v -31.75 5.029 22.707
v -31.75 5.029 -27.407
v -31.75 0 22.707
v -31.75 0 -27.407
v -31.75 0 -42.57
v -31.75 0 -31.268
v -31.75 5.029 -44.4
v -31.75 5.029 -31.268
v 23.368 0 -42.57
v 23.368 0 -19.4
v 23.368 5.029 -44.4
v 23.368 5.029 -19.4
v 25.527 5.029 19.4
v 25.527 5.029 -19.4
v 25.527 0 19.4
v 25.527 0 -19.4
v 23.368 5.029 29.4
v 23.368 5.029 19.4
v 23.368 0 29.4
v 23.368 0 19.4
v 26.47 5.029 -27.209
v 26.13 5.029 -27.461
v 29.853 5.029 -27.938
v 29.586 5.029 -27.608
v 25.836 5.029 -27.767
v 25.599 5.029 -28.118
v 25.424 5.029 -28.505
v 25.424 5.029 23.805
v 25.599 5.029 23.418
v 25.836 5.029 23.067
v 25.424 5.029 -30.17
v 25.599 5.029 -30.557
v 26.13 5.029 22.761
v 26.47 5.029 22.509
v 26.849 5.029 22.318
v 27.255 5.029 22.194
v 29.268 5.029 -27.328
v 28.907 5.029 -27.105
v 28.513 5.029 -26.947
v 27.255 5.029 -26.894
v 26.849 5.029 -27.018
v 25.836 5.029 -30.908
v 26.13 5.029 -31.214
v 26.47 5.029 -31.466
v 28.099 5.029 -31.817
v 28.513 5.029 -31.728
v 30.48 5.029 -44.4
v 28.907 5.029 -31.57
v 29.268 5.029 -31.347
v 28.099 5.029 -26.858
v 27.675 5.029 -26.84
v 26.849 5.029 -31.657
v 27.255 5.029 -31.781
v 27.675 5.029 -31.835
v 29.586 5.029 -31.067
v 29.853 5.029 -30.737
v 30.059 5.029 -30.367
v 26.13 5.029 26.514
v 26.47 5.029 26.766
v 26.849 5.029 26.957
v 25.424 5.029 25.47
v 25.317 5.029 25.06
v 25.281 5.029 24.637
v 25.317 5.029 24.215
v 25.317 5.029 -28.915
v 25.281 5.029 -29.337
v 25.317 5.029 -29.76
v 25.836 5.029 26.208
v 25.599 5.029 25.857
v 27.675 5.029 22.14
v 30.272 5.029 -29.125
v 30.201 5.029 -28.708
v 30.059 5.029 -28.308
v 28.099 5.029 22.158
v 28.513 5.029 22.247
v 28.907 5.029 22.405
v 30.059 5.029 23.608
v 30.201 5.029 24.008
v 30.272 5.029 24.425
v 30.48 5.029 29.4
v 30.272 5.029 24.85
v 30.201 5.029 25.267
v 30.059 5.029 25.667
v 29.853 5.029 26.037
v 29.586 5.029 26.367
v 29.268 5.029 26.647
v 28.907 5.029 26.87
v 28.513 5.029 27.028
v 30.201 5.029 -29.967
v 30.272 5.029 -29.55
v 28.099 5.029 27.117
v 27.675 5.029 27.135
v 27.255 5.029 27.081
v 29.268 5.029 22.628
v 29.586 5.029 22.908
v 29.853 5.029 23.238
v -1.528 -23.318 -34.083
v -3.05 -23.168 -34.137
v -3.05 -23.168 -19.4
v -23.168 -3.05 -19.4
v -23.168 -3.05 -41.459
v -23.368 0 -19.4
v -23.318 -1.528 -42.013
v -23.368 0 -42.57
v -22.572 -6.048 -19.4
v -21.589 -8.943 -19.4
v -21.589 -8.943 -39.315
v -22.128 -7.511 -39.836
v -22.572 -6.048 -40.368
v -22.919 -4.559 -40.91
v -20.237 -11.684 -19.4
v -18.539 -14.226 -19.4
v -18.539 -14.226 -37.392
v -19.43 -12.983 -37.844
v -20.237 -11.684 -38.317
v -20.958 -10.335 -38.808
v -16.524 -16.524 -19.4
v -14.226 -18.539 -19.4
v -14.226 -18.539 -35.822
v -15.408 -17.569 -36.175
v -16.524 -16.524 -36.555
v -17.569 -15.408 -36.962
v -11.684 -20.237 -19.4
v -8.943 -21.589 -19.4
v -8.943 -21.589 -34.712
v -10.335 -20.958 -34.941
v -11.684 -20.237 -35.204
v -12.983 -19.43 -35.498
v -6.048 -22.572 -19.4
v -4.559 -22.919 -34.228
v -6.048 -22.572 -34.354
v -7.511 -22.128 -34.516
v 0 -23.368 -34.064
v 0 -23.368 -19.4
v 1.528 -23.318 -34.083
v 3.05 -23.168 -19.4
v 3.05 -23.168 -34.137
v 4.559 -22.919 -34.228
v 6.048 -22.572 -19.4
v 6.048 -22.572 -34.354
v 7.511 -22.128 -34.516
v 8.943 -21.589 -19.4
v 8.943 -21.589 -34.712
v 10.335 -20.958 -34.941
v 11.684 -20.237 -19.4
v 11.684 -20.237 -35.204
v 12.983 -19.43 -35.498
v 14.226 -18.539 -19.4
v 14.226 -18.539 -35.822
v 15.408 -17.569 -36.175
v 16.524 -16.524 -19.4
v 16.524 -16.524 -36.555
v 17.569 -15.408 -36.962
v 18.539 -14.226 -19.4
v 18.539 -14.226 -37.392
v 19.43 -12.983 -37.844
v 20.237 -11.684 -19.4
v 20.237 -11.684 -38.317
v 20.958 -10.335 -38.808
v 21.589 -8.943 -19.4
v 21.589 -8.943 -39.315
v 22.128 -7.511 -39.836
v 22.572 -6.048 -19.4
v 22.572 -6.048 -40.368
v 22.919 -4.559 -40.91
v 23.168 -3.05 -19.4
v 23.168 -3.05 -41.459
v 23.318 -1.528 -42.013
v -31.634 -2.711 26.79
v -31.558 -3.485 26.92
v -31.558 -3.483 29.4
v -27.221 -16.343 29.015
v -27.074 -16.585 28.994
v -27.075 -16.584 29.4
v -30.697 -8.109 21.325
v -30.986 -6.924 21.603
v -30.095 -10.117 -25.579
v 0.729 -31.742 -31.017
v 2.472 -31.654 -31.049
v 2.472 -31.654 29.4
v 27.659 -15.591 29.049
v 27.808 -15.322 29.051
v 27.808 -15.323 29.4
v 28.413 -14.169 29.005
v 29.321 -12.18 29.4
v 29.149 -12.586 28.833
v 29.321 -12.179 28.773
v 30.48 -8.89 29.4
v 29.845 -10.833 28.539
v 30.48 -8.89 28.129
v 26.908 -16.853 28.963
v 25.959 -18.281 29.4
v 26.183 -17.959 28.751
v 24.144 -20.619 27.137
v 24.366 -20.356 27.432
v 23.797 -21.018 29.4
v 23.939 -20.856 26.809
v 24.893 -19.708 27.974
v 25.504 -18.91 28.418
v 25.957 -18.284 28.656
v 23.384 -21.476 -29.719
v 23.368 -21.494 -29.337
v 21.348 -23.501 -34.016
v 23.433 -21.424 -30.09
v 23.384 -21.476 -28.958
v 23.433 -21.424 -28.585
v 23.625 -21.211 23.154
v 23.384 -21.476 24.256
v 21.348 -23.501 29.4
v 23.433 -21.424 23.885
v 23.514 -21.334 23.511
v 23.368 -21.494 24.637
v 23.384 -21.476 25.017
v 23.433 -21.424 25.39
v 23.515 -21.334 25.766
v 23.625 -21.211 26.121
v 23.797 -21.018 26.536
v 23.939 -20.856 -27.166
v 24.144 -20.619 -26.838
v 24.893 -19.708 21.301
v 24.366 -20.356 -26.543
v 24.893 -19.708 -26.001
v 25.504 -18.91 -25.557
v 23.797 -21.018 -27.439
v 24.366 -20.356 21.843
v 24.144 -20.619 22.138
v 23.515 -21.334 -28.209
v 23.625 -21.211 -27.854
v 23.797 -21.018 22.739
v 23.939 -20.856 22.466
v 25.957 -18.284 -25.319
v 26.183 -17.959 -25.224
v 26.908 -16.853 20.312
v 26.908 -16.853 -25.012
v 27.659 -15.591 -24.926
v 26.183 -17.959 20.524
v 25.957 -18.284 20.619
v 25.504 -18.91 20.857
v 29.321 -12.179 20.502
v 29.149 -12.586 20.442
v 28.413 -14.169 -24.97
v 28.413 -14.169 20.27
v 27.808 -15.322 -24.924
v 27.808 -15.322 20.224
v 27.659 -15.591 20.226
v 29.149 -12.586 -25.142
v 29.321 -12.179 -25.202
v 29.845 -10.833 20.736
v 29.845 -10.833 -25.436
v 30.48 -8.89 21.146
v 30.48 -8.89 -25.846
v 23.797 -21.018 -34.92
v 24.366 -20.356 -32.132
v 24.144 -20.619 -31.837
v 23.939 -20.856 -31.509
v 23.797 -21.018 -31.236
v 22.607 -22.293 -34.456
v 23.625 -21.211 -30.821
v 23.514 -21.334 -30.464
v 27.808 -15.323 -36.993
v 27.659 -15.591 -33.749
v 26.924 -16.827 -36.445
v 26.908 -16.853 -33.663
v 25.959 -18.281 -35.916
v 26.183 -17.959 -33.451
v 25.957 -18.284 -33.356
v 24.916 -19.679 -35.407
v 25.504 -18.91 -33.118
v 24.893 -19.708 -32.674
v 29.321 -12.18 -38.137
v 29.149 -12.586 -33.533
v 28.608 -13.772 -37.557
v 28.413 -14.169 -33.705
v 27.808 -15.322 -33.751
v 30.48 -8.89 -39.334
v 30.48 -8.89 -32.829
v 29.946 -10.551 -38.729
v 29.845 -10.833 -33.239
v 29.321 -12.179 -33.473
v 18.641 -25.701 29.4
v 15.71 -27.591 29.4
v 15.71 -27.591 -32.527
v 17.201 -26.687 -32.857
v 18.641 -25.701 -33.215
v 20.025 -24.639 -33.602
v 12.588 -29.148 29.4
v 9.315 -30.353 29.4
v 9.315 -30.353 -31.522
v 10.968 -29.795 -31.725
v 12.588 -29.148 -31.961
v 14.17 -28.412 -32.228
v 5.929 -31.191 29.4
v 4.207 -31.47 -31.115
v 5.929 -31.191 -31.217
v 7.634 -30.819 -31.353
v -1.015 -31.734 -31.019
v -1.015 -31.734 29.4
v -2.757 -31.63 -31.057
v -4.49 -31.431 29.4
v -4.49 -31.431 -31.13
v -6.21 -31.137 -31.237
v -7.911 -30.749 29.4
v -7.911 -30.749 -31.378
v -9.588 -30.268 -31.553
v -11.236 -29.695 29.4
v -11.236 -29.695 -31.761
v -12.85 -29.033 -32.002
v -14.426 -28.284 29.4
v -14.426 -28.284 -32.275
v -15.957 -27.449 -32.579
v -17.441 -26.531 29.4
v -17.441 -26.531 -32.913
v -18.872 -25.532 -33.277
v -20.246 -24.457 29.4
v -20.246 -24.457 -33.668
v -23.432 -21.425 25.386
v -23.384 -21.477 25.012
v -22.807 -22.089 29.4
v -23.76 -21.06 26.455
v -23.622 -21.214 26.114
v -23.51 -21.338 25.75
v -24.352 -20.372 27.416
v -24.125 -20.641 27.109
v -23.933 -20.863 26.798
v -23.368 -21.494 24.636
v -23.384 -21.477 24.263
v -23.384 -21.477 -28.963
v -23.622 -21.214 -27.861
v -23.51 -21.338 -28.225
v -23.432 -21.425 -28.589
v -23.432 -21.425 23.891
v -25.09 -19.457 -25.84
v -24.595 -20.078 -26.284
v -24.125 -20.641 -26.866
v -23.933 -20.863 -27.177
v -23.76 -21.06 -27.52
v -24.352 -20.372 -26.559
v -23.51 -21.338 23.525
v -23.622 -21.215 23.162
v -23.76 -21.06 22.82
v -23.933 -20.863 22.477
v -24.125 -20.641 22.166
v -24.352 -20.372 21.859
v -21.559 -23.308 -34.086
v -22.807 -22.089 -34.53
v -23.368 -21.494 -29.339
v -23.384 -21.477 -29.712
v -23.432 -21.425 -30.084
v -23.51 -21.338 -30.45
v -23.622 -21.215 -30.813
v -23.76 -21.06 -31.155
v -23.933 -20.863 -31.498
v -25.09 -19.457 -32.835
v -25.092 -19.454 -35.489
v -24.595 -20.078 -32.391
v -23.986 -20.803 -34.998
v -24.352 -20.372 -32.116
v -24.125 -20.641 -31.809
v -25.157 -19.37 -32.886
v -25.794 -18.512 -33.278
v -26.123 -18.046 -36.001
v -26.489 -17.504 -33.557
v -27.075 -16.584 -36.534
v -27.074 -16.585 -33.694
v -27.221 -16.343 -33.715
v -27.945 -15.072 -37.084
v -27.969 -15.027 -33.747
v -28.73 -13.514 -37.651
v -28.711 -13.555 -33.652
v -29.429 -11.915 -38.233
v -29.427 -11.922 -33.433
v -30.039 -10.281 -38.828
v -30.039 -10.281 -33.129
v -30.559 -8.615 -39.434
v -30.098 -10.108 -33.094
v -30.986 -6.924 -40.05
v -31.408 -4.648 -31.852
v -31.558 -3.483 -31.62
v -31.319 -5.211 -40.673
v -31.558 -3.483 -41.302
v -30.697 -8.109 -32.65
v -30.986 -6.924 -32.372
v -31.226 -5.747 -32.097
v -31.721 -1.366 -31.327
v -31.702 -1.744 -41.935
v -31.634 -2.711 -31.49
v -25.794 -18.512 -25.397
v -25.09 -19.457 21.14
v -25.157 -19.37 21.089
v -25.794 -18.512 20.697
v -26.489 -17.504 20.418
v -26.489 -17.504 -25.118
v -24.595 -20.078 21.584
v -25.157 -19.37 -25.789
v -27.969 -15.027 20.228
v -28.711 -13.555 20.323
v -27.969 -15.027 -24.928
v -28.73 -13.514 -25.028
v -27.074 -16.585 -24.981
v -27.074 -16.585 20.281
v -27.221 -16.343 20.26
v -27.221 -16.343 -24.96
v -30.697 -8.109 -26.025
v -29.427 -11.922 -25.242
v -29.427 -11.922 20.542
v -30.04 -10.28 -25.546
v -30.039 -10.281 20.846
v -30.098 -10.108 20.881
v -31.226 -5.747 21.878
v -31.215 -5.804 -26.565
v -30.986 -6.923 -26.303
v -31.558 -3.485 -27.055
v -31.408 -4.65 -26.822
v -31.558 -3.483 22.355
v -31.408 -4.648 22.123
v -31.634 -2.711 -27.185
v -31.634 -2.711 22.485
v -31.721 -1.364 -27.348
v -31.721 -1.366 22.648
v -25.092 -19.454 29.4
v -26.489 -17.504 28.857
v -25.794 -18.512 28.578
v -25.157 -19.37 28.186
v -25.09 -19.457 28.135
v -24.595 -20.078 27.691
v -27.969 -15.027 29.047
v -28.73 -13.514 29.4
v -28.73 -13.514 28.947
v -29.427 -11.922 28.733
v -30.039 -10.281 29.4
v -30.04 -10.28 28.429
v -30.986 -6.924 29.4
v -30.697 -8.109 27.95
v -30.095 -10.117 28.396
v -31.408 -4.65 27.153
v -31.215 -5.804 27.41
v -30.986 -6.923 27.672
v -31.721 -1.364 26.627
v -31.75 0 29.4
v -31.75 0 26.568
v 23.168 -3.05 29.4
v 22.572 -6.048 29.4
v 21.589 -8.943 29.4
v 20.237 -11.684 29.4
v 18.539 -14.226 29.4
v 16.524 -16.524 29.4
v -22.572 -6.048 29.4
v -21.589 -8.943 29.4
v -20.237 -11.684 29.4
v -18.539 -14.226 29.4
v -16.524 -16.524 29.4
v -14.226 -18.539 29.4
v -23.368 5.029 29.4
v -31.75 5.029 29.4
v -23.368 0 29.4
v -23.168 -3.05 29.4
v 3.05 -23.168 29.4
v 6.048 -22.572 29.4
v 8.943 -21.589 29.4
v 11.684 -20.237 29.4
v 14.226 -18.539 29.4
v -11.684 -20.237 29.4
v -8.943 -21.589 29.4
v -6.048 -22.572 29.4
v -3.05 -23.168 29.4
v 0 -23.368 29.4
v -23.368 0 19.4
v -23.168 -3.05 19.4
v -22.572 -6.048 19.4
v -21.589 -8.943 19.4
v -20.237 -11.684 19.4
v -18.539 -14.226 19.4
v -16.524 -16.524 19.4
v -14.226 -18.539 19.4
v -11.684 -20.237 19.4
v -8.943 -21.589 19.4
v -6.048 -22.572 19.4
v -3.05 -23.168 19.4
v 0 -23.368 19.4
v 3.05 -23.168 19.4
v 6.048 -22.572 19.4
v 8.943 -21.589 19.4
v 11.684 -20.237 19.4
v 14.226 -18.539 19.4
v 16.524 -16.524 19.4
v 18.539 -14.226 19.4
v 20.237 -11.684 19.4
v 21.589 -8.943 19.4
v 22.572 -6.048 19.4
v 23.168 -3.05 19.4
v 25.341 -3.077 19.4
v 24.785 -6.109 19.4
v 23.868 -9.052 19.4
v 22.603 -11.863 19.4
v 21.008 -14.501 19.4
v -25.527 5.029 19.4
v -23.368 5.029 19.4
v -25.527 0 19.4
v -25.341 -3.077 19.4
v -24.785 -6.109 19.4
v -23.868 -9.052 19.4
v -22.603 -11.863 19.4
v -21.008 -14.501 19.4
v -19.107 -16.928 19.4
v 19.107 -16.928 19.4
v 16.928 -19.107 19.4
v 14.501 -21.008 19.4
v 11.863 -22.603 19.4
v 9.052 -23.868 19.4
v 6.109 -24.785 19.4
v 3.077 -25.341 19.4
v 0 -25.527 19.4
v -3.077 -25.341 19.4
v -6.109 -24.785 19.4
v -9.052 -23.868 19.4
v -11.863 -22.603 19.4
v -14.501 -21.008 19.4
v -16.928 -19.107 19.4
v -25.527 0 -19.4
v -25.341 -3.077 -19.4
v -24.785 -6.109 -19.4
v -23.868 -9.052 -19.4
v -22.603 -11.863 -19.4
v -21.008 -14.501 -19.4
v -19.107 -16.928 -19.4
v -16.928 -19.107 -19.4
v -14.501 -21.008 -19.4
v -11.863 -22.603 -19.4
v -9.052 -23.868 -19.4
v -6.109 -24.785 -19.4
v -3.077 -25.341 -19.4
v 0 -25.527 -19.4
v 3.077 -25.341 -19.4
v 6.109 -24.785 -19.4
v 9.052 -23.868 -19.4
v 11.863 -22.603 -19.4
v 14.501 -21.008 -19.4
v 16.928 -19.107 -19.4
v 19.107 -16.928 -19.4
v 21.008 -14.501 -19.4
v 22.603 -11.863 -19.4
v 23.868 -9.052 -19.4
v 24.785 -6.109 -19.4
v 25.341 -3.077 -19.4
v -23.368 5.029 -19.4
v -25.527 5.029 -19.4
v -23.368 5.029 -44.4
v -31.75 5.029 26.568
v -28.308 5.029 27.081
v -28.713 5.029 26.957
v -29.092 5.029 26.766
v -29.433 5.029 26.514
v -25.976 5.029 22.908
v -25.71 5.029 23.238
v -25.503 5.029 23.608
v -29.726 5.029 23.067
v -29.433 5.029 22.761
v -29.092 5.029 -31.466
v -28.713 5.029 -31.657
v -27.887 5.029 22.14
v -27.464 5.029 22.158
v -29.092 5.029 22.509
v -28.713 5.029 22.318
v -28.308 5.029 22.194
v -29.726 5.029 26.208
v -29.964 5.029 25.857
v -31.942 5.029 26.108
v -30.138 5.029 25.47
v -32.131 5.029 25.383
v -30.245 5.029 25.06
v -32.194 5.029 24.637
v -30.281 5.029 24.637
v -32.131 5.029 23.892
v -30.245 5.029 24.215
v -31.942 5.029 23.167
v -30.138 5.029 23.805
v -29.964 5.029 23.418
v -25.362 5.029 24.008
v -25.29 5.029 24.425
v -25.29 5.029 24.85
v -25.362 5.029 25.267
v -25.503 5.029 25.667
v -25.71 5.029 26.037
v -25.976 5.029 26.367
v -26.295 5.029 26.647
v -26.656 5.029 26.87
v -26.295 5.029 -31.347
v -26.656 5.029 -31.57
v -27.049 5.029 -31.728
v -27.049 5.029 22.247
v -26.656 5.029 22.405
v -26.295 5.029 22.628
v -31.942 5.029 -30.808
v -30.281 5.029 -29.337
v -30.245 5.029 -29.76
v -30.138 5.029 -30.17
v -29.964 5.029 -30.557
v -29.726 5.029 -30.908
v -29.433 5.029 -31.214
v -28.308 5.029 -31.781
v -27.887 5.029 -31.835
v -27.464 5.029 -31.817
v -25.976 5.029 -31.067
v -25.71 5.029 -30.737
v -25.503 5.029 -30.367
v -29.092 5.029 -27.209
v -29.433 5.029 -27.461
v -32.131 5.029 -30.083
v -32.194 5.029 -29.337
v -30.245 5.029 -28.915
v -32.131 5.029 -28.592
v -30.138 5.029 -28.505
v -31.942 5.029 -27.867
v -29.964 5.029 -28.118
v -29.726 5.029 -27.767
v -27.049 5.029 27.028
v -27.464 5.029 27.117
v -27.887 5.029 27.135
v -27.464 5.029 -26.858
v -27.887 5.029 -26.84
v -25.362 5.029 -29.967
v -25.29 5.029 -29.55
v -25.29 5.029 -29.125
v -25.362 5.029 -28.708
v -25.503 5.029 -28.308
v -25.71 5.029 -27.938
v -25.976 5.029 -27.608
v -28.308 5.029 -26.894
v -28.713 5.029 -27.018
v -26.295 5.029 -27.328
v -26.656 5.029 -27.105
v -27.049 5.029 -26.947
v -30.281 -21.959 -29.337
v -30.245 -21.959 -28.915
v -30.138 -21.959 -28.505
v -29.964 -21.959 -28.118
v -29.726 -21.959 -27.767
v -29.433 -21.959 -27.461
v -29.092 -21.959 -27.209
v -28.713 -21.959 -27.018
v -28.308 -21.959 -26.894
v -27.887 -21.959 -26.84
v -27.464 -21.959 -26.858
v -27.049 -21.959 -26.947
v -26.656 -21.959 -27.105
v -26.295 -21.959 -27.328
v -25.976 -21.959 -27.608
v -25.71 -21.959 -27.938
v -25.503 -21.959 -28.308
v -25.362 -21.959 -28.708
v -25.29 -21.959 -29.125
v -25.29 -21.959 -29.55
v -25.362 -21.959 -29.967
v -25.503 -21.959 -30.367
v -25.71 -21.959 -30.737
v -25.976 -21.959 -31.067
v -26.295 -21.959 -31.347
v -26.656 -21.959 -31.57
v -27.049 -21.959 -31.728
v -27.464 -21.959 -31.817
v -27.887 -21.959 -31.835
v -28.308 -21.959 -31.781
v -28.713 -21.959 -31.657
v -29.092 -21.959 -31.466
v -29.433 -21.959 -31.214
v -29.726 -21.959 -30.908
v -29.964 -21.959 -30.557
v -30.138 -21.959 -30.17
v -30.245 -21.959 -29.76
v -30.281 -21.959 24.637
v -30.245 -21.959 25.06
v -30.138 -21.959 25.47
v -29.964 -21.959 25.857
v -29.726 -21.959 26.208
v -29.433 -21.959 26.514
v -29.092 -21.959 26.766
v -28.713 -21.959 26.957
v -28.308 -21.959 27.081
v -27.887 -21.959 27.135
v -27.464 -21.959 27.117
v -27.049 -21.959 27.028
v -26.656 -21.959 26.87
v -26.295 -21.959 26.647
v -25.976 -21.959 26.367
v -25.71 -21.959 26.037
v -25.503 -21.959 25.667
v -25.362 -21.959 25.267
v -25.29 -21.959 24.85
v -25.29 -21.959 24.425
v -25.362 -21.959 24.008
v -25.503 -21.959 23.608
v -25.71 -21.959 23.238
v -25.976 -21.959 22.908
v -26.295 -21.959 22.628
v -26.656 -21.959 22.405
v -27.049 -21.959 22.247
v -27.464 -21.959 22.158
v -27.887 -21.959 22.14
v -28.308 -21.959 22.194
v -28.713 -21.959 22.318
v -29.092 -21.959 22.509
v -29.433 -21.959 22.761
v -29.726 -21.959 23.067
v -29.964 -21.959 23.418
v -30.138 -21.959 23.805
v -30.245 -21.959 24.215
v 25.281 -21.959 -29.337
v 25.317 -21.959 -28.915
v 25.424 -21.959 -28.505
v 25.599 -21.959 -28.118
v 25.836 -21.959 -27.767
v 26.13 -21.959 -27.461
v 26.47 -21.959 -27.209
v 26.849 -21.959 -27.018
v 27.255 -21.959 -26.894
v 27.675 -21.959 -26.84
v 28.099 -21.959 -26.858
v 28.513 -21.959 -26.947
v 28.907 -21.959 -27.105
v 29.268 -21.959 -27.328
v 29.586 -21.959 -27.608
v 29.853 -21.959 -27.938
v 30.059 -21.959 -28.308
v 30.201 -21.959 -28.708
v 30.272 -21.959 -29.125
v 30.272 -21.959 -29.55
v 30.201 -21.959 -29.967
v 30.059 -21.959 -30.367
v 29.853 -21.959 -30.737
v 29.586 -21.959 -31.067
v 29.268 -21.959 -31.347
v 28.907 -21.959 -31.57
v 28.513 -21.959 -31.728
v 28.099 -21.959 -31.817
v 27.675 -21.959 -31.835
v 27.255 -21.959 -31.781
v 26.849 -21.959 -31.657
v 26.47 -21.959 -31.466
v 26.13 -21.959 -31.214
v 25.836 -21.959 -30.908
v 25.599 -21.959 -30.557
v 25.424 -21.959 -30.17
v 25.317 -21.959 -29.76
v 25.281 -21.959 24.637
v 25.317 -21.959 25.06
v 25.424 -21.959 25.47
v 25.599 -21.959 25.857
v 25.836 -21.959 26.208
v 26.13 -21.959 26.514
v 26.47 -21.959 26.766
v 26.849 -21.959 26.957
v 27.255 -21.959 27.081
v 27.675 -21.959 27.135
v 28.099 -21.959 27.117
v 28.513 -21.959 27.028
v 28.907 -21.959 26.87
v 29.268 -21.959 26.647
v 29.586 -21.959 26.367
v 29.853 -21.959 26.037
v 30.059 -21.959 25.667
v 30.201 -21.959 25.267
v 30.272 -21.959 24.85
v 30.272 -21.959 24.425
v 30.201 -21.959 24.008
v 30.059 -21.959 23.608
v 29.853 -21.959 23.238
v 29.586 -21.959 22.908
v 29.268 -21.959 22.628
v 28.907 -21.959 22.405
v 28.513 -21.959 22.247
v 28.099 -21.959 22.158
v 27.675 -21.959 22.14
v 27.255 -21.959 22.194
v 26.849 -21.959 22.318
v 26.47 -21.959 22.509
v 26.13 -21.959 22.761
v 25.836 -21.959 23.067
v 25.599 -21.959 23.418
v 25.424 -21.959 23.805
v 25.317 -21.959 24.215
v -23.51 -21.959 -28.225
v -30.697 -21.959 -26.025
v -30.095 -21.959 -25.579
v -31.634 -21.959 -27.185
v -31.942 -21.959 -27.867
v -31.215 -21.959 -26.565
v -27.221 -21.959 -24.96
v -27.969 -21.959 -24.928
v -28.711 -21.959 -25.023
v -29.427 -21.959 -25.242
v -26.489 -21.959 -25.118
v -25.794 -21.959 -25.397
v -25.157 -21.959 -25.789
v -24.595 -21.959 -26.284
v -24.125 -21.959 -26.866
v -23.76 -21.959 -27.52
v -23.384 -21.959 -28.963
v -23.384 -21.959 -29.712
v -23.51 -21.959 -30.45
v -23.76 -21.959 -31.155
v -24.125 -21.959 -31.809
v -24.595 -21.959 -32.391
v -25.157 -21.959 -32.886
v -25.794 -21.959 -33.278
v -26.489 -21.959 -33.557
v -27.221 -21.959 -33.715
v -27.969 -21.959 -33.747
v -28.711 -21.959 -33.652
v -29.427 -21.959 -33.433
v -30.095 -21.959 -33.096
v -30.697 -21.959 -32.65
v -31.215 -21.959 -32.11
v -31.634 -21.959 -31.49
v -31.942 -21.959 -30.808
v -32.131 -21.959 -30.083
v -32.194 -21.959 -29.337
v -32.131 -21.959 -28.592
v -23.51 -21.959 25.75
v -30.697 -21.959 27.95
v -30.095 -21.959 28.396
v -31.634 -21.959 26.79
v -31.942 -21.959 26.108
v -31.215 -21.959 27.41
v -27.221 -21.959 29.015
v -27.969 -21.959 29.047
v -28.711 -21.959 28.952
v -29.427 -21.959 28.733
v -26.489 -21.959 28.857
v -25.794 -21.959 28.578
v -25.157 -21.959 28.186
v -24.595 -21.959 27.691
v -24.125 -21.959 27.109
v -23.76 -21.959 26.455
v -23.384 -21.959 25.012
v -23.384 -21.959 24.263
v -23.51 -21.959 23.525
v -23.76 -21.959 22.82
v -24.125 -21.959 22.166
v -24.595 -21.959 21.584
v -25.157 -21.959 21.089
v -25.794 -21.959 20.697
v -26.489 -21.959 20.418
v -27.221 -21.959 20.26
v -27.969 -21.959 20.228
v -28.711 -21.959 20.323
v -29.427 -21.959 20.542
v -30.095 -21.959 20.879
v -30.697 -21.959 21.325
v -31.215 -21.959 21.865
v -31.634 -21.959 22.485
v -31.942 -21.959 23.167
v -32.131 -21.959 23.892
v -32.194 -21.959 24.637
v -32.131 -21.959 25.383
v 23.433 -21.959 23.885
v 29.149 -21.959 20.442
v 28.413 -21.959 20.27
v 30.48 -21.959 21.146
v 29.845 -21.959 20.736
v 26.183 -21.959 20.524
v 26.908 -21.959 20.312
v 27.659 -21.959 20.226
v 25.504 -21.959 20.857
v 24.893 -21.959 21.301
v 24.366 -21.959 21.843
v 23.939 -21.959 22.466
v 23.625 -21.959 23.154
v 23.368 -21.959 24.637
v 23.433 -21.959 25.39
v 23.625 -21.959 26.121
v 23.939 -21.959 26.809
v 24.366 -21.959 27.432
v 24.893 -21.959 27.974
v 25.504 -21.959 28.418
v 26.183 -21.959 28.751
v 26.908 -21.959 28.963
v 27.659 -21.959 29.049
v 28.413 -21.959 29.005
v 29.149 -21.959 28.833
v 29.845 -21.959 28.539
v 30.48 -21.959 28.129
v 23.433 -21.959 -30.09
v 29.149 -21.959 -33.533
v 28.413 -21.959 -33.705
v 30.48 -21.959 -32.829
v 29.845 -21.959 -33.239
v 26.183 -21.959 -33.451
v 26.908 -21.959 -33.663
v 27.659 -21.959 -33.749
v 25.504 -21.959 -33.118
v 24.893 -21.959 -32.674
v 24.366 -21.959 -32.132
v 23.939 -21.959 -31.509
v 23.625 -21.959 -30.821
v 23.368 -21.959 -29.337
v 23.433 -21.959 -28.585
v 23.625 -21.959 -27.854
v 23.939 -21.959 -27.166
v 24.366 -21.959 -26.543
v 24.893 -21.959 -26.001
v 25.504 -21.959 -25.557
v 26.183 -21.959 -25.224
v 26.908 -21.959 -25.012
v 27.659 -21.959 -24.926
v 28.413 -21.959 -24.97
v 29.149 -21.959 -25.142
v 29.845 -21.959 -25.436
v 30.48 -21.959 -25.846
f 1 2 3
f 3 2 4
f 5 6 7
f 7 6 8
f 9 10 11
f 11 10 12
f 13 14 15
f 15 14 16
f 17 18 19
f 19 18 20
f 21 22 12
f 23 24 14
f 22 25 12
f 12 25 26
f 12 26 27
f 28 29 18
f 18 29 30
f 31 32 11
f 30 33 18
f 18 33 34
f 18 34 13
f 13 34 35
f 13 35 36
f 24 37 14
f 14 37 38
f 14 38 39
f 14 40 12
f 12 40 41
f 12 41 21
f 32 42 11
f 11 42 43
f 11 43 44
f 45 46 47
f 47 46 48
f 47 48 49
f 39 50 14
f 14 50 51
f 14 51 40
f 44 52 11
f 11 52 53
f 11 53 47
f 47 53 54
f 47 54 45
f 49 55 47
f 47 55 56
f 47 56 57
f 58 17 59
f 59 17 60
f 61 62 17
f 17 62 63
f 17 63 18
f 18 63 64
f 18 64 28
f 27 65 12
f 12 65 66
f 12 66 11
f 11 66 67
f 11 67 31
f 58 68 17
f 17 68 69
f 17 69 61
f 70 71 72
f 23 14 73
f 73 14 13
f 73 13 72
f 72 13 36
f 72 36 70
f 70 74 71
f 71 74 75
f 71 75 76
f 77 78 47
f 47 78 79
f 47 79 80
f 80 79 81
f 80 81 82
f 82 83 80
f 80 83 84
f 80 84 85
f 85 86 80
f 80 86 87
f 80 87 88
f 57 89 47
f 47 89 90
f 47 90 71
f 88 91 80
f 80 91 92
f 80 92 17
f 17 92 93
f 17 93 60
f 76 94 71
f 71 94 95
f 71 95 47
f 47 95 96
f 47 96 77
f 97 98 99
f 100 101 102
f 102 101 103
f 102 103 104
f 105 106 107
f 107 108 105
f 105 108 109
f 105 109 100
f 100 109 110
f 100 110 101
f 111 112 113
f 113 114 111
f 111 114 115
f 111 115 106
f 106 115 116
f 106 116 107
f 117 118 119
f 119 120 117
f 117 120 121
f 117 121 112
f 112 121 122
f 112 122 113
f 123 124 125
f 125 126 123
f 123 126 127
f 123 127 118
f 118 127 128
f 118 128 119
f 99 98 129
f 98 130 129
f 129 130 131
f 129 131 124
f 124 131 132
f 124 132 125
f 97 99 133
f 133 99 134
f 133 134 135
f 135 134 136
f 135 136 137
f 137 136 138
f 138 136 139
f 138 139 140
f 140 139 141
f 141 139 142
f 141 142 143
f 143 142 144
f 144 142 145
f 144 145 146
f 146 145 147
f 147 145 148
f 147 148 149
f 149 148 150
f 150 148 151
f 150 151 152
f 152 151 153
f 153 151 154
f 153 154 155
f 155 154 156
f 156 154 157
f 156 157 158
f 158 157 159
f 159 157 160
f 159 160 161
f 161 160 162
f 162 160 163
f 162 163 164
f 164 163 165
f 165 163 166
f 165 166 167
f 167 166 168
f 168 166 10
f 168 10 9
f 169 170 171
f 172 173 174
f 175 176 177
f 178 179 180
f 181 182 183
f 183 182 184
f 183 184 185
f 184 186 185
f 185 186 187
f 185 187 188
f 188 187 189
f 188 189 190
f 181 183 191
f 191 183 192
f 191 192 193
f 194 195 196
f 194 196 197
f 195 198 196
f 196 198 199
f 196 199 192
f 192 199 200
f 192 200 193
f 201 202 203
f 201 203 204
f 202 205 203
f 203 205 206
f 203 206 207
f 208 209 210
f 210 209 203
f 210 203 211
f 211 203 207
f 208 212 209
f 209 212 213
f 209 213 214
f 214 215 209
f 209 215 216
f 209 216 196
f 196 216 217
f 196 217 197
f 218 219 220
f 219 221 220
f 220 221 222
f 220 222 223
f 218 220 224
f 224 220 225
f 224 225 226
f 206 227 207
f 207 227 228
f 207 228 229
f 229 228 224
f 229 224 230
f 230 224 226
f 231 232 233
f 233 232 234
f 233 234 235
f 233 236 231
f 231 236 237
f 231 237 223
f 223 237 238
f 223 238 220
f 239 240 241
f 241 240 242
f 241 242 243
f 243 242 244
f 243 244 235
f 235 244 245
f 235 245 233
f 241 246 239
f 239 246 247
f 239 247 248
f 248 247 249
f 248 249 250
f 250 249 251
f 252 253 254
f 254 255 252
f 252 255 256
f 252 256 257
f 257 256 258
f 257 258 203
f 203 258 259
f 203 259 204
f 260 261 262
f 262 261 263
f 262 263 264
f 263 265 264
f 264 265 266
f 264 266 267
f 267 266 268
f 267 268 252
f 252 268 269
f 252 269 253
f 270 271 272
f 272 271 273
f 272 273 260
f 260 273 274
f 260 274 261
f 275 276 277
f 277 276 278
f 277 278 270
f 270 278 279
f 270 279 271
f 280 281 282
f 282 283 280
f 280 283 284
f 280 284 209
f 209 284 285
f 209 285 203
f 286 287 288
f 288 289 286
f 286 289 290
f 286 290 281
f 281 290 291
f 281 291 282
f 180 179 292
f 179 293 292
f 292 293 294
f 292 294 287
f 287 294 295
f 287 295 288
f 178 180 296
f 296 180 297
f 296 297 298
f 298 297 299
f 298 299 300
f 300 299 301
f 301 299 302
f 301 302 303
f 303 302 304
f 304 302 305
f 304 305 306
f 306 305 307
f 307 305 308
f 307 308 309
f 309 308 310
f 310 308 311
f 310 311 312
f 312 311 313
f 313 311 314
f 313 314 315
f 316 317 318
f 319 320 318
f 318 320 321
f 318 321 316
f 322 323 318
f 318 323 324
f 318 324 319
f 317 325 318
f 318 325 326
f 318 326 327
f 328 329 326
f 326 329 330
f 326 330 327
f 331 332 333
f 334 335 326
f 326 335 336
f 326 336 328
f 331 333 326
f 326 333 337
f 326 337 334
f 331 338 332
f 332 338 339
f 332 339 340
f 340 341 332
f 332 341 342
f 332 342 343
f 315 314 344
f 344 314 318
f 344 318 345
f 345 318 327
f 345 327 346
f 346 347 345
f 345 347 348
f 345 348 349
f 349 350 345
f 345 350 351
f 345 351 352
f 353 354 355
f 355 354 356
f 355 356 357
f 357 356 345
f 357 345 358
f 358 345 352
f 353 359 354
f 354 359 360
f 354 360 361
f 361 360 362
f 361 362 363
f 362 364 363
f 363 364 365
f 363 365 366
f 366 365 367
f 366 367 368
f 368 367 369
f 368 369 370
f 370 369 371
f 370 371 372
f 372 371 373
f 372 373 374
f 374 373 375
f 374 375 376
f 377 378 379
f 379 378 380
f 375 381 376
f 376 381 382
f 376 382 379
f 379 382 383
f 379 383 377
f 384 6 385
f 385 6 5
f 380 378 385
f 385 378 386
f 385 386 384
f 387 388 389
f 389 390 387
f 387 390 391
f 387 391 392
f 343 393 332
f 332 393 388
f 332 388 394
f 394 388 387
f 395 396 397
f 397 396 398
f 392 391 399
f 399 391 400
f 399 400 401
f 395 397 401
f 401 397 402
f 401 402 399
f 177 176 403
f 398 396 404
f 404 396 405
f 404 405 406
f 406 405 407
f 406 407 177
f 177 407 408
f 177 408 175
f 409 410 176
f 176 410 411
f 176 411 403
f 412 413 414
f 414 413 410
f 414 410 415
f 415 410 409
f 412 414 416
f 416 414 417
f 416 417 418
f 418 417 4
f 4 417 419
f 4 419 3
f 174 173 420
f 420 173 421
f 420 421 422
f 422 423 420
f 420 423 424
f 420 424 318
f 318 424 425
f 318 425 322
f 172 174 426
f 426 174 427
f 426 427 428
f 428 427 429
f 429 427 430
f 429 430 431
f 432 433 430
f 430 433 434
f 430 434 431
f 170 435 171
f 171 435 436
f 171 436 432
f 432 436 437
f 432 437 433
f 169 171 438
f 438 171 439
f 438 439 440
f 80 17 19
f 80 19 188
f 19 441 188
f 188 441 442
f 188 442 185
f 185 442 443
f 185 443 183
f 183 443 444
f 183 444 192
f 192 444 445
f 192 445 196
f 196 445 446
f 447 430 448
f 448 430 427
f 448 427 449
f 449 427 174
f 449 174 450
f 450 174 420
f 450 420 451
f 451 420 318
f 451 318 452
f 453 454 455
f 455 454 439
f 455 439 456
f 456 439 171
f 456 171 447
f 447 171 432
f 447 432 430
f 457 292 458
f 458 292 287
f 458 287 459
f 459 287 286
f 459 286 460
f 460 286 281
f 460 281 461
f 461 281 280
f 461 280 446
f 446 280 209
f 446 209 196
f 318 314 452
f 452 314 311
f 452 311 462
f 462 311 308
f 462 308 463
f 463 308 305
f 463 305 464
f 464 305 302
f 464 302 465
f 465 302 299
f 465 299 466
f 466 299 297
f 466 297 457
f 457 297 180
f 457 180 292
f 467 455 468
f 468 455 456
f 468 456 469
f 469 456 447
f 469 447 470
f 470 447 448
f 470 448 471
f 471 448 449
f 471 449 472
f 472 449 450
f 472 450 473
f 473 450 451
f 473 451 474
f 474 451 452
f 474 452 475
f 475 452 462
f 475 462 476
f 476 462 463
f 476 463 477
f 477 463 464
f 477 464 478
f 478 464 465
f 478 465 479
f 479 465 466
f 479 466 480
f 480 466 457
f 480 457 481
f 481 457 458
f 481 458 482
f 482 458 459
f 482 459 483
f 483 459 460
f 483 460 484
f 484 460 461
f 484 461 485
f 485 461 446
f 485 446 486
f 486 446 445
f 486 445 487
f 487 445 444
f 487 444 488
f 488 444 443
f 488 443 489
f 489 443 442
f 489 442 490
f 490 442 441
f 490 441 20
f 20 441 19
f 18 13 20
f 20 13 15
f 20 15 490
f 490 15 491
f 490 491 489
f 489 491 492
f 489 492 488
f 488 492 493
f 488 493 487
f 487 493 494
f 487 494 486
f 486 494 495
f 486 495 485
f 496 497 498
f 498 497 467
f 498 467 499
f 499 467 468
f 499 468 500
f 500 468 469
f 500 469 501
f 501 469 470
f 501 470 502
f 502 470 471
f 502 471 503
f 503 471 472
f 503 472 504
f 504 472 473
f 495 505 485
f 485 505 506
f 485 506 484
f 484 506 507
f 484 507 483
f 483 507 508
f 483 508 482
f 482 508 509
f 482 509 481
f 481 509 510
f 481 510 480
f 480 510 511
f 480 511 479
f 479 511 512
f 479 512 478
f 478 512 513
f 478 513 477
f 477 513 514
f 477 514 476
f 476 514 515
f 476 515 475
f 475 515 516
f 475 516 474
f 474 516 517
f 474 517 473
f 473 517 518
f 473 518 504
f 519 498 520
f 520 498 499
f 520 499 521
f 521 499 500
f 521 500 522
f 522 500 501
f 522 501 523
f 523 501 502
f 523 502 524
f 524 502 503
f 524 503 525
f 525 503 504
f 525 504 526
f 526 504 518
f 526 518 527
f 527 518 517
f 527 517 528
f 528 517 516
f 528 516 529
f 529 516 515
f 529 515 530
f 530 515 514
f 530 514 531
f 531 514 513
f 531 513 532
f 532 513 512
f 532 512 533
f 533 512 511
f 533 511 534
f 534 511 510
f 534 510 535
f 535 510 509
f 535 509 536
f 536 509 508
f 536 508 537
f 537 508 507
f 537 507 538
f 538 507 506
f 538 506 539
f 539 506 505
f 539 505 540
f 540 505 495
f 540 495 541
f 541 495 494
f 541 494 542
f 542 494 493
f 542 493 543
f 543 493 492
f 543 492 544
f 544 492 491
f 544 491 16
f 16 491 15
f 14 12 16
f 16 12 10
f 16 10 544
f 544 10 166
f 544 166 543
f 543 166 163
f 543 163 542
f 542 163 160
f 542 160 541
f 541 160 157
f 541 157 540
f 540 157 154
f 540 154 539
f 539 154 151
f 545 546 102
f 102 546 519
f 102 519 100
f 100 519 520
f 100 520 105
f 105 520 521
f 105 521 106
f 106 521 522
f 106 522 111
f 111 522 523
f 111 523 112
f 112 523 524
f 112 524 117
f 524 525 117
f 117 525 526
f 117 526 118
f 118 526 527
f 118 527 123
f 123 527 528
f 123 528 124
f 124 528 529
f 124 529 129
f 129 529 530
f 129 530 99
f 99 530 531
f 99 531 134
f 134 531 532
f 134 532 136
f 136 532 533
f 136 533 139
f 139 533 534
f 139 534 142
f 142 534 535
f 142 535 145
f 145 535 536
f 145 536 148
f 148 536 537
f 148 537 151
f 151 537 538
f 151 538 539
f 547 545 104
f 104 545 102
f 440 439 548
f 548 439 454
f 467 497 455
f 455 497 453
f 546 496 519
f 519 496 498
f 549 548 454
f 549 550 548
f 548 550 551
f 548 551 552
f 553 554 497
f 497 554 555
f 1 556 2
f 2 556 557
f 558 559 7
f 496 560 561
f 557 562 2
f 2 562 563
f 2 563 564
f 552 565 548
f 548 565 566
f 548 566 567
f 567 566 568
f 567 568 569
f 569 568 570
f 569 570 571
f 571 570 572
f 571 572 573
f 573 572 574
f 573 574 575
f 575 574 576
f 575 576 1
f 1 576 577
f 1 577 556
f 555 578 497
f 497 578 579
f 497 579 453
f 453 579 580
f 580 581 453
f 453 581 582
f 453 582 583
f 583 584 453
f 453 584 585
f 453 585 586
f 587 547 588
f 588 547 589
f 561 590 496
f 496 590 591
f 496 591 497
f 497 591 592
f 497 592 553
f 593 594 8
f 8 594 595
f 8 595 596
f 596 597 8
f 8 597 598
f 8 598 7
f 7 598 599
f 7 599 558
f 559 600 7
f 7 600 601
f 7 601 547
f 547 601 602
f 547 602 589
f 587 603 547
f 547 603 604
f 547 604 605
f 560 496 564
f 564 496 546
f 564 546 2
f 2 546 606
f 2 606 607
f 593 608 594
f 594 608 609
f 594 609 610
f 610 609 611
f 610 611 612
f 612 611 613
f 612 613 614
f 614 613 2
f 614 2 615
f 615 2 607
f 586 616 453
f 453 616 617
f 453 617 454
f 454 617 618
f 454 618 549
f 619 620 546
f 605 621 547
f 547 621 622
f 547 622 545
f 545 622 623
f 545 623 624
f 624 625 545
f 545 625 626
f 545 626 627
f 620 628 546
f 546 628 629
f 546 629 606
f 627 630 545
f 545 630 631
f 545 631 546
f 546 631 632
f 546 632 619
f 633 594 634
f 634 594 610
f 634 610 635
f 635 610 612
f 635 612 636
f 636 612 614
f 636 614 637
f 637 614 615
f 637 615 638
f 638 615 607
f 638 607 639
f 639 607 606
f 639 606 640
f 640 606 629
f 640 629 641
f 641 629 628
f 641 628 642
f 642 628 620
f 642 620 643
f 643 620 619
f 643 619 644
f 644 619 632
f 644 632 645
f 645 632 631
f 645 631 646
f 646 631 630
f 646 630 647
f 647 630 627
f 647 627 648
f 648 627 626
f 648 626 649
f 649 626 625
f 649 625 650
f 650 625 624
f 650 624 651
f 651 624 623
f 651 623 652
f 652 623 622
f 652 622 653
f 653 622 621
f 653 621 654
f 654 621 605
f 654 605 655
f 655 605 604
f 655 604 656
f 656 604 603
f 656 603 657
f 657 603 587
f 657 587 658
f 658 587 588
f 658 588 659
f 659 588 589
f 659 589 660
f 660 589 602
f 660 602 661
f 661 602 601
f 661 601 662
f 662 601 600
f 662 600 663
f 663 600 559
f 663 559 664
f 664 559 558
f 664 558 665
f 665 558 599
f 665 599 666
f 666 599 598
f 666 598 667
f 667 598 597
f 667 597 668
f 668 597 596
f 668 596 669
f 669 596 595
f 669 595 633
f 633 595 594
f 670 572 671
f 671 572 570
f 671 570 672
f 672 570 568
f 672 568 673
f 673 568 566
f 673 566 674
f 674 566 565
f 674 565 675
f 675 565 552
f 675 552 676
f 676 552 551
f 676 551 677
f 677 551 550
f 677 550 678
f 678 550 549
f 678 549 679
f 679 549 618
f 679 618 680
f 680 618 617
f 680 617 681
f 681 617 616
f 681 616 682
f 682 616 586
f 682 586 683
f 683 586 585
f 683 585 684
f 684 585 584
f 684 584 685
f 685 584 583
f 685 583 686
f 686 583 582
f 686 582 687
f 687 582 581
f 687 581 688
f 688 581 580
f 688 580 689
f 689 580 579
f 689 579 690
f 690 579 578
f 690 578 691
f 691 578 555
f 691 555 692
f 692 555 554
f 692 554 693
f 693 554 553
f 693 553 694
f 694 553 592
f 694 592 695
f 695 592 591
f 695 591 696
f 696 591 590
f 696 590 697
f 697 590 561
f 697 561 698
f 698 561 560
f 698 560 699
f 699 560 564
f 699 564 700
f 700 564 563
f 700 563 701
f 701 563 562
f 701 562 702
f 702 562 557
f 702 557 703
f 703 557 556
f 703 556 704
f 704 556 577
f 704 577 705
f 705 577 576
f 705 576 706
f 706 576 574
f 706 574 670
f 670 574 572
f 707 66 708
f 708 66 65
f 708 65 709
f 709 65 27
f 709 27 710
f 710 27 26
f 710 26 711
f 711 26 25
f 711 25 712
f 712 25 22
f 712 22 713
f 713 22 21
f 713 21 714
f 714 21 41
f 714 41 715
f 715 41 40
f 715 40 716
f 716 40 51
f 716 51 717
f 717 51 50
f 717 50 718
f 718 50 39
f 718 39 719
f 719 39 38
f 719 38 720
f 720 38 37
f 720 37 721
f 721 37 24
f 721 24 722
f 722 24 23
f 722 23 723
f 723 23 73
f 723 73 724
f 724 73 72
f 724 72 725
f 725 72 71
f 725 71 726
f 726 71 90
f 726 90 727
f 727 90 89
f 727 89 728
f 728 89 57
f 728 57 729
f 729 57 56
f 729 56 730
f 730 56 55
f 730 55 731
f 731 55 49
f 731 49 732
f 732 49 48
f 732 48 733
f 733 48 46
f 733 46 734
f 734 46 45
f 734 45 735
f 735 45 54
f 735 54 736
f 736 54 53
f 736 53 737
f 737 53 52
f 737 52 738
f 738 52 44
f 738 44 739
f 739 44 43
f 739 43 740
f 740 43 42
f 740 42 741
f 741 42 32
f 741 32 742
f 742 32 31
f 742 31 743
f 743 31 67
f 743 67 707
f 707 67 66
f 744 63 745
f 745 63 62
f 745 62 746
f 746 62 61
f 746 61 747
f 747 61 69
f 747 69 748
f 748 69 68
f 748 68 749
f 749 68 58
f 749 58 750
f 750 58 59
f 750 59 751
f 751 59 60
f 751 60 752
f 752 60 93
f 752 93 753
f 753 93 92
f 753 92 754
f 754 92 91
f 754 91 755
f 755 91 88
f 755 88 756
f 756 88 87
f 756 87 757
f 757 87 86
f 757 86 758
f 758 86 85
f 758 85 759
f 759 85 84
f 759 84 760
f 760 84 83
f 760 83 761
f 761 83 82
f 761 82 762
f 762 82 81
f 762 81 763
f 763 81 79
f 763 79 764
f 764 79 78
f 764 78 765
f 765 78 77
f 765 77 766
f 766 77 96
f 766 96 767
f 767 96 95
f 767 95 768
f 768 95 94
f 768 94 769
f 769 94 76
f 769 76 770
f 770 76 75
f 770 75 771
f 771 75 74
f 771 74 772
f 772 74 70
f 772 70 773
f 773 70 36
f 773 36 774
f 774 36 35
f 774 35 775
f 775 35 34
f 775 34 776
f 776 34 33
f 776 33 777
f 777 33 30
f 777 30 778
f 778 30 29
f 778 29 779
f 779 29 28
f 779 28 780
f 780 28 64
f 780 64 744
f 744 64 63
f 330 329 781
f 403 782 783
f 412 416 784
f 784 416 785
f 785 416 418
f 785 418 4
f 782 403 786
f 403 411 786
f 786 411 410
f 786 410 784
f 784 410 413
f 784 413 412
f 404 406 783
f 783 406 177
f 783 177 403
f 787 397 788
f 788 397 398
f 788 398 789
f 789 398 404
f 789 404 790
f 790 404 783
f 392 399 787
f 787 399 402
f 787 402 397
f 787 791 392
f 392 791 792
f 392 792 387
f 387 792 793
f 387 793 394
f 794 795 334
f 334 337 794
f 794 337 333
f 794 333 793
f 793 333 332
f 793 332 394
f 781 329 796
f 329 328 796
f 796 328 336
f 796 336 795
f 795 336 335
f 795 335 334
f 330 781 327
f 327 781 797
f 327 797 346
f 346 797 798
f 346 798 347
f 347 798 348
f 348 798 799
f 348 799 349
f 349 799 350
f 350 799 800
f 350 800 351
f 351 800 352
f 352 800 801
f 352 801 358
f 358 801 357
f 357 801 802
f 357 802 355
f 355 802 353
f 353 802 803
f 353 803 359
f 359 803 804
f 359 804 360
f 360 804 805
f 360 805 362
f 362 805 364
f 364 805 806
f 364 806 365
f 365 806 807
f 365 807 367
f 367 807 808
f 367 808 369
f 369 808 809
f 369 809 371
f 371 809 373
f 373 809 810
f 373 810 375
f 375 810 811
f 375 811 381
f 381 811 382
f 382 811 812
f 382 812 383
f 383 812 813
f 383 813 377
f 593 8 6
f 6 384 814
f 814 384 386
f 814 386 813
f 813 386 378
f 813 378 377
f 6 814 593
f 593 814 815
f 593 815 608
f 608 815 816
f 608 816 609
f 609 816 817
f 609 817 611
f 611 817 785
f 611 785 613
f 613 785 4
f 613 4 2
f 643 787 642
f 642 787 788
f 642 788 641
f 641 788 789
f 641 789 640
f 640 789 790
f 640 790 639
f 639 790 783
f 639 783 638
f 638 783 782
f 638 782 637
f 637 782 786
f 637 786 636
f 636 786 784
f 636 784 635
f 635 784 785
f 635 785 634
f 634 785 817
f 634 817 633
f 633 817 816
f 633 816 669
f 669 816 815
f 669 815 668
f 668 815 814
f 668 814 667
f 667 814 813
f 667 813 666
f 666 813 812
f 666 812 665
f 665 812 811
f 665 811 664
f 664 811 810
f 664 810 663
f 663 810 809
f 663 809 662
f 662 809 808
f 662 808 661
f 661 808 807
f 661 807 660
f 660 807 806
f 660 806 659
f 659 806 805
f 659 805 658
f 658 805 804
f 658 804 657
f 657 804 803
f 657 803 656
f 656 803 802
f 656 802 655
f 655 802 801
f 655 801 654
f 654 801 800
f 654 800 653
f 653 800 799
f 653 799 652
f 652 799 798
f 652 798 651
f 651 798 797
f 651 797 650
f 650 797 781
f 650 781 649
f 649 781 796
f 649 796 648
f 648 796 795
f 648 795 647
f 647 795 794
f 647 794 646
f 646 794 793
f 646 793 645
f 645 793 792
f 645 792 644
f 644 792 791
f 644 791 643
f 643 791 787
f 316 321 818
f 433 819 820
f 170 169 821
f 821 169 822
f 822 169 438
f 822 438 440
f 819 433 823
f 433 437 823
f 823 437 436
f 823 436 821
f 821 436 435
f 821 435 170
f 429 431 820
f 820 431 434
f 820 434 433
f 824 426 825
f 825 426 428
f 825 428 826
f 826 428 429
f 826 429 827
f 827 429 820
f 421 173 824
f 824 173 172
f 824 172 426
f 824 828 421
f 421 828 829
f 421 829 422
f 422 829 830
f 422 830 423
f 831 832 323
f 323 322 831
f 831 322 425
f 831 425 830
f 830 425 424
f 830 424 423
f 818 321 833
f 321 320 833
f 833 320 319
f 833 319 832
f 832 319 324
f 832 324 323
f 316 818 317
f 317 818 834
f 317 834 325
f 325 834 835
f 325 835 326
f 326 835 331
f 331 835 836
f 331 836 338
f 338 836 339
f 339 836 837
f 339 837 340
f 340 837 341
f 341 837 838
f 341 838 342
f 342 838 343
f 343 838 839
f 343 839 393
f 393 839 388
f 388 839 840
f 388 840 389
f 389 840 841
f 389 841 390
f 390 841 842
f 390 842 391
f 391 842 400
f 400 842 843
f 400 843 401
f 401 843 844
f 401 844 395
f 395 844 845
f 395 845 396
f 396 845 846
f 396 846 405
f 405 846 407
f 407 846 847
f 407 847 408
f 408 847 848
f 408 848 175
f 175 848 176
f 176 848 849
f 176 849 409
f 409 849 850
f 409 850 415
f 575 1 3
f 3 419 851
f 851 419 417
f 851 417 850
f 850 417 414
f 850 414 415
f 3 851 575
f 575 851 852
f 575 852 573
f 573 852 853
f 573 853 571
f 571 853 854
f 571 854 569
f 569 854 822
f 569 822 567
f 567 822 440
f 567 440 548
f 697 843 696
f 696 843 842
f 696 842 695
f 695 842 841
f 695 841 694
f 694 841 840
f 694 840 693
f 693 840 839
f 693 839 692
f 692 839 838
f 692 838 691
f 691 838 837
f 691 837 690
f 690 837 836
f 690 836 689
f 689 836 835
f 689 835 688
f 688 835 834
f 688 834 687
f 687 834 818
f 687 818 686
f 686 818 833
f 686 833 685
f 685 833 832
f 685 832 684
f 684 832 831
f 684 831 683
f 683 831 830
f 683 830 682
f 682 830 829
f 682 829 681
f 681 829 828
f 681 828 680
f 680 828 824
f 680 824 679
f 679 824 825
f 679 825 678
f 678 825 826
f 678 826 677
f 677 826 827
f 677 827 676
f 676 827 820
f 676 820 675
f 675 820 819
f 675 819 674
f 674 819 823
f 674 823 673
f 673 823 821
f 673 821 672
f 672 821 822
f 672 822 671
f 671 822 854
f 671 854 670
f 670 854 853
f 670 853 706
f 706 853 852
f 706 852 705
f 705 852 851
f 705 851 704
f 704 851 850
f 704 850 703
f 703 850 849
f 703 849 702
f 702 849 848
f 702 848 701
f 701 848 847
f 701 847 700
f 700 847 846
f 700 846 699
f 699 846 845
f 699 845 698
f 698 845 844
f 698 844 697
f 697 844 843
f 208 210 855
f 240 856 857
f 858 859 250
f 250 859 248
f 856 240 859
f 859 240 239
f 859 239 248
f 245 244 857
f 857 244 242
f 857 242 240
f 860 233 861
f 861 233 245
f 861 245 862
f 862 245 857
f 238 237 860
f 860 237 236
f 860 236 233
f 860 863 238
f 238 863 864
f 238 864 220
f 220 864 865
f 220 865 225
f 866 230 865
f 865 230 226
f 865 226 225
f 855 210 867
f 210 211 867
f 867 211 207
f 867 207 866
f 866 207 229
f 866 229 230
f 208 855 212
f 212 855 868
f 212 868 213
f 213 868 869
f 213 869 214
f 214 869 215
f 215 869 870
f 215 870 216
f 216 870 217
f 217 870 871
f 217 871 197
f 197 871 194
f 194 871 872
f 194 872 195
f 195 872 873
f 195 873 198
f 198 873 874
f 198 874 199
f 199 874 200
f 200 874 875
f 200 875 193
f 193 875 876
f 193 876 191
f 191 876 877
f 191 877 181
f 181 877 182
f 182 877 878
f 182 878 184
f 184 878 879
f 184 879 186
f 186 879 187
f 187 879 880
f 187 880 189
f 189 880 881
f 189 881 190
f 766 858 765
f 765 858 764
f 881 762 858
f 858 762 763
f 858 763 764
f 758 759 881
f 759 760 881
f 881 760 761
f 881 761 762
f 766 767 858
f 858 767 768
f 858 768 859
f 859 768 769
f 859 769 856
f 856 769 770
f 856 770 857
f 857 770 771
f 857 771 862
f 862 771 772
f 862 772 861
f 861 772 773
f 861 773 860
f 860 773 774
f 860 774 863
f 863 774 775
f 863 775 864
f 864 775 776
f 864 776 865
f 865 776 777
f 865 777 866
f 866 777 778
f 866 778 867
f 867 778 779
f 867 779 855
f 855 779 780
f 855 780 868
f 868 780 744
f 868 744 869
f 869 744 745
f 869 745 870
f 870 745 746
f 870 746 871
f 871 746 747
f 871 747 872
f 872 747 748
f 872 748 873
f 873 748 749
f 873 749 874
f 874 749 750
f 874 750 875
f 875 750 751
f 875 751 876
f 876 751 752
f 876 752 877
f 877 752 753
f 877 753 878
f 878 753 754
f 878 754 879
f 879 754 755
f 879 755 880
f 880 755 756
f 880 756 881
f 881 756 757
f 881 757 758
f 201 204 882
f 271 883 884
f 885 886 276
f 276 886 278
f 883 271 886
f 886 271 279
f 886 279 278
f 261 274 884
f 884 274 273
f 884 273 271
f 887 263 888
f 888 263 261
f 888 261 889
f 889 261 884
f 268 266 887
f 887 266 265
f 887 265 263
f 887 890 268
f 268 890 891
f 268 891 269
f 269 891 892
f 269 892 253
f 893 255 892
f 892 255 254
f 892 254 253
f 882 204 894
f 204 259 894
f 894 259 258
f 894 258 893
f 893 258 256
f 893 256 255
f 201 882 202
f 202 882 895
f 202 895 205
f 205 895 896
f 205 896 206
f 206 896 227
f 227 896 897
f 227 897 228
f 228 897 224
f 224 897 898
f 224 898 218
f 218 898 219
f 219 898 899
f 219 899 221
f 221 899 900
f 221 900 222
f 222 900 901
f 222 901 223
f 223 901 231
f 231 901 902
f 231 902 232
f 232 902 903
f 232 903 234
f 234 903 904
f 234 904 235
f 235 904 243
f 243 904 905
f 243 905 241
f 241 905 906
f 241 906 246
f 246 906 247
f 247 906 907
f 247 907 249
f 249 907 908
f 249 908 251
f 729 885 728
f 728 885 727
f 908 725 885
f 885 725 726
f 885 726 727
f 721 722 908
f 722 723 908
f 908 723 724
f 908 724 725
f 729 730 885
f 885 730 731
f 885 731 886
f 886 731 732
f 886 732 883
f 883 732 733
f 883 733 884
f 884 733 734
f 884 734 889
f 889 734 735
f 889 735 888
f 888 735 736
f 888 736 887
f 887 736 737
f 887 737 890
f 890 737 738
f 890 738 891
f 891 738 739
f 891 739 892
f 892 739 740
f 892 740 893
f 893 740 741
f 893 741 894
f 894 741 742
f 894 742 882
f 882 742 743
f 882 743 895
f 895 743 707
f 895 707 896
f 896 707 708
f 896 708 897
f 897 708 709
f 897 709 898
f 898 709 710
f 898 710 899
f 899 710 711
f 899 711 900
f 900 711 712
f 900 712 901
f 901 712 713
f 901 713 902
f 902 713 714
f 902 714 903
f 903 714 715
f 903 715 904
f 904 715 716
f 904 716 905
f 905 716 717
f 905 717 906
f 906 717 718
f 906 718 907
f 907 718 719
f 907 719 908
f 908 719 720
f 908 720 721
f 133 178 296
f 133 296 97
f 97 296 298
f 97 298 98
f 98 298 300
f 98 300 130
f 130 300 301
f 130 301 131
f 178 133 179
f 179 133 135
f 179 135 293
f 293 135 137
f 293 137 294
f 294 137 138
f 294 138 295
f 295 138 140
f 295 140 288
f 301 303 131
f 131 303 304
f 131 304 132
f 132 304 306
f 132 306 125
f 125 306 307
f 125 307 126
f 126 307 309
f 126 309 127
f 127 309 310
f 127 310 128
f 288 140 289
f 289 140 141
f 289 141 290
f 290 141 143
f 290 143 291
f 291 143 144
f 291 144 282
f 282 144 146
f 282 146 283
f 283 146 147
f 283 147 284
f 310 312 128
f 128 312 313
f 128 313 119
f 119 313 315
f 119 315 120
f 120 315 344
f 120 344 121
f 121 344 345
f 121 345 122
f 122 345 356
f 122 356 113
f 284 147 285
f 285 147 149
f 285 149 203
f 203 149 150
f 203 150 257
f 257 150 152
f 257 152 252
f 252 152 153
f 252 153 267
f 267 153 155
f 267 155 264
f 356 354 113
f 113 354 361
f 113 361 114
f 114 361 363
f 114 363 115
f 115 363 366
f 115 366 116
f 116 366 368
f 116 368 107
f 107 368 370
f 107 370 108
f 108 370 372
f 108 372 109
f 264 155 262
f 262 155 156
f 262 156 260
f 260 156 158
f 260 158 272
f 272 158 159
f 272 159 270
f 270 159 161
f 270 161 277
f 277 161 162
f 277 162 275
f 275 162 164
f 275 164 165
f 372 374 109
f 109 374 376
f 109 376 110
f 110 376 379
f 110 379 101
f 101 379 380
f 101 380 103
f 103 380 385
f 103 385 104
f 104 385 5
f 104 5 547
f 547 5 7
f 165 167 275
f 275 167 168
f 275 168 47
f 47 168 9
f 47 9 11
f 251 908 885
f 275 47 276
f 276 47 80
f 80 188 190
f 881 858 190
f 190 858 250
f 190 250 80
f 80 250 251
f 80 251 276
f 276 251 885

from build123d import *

# Parameters (mm, degrees)
REVOLVE1_ANGLE          = 180
BOSS_EXTRUDE1_DEPTH     = 5.02894
SKETCH4_R               = 2.5
CUT_EXTRUDE1_DEPTH      = 66.81878856
SKETCH5_R               = 4.41325
SKETCH5_R_2             = 2.5
BOSS_EXTRUDE2_DEPTH     = 26.9875
CUT_EXTRUDE2_DEPTH      = 64.37119497
CUT_EXTRUDE2_DEPTH_BACK = 64.37119497
CUT_EXTRUDE7_DEPTH      = 67.034356751
CUT_EXTRUDE7_DEPTH_BACK = 67.034356751
SKETCH8_W               = 7.909159593
SKETCH8_H               = 73.8


with BuildPart() as part:
    # Sketch1 → Revolve1 (revolve)
    with BuildSketch(Plane(origin=(0, 0, 0), x_dir=(1, 0, 0), z_dir=(0, 1, 0))):
        Polygon((23.368, 44.4), (31.75, 44.4), (31.75, -29.4), (23.368, -29.4), (23.368, -19.4), (25.527, -19.4), (25.527, 19.4), (23.368, 19.4), align=None)
    revolve(axis=Axis((0, 0, 55), (0, 0, -1)), revolution_arc=REVOLVE1_ANGLE)

    # Sketch3 → Boss-Extrude1 (add)
    with BuildSketch(Plane(origin=(0, 0, 0), x_dir=(1, 0, 0), z_dir=(0, 1, 0))):
        Polygon((23.368, 44.4), (23.368, 19.4), (25.527, 19.4), (25.527, -19.4), (23.368, -19.4), (23.368, -29.4), (31.75, -29.4), (31.75, 44.4), align=None)
        Polygon((-23.368, 19.4), (-23.368, 44.4), (-31.75, 44.4), (-31.75, -29.4), (-23.368, -29.4), (-23.368, -19.4), (-25.527, -19.4), (-25.527, 19.4), align=None)
    extrude(amount=BOSS_EXTRUDE1_DEPTH)

    # Sketch4 → Cut-Extrude1 (cut, through all)
    with BuildSketch(Plane(origin=(0, 5.02894, 0), x_dir=(1, 0, 0), z_dir=(0, 1, 0))):
        with Locations(Location((-27.78125, 29.3375, 0), (0, 0, 180))):
            Circle(SKETCH4_R)
        with Locations(Location((27.78125, 29.3375, 0), (0, 0, 180))):
            Circle(SKETCH4_R)
        with Locations(Location((27.78125, -24.6375, 0), (0, 0, 180))):
            Circle(SKETCH4_R)
        with Locations(Location((-27.78125, -24.6375, 0), (0, 0, 180))):
            Circle(SKETCH4_R)
    extrude(amount=-CUT_EXTRUDE1_DEPTH, mode=Mode.SUBTRACT)

    # Sketch5 → Boss-Extrude2 (add)
    # profile 1 of 4: a face of its own
    with BuildSketch(Plane(origin=(0, 5.02894, 0), x_dir=(1, 0, 0), z_dir=(0, 1, 0))):
        with Locations(Location((-27.78125, 29.3375, 0), (0, 0, 180))):
            Circle(SKETCH5_R)
        with Locations(Location((-27.78125, 29.3375, 0), (0, 0, 180))):
            Circle(SKETCH5_R_2, mode=Mode.SUBTRACT)
    # profile 2 of 4: a face of its own
    with BuildSketch(Plane(origin=(0, 5.02894, 0), x_dir=(1, 0, 0), z_dir=(0, 1, 0))):
        with Locations(Location((-27.78125, -24.6375, 0), (0, 0, 180))):
            Circle(SKETCH5_R)
        with Locations(Location((-27.78125, -24.6375, 0), (0, 0, 180))):
            Circle(SKETCH5_R_2, mode=Mode.SUBTRACT)
    # profile 3 of 4: a face of its own
    with BuildSketch(Plane(origin=(0, 5.02894, 0), x_dir=(1, 0, 0), z_dir=(0, 1, 0))):
        with Locations(Location((27.78125, -24.6375, 0), (0, 0, 180))):
            Circle(SKETCH5_R)
        with Locations(Location((27.78125, -24.6375, 0), (0, 0, 180))):
            Circle(SKETCH5_R_2, mode=Mode.SUBTRACT)
    # profile 4 of 4: a face of its own
    with BuildSketch(Plane(origin=(0, 5.02894, 0), x_dir=(1, 0, 0), z_dir=(0, 1, 0))):
        with Locations(Location((27.78125, 29.3375, 0), (0, 0, 180))):
            Circle(SKETCH5_R)
        with Locations(Location((27.78125, 29.3375, 0), (0, 0, 180))):
            Circle(SKETCH5_R_2, mode=Mode.SUBTRACT)
    extrude(amount=-BOSS_EXTRUDE2_DEPTH)

    # Sketch6 → Cut-Extrude2 (cut, two sides: drawn at the far end of the back side and taken through both)
    with BuildSketch(Plane(origin=(0, 0, 0), x_dir=(0, 0, -1), z_dir=(1, 0, 0)).offset(-CUT_EXTRUDE2_DEPTH_BACK)):
        Polygon((44.4, 5.02894), (31.013560592, -31.75), (44.4, -31.75), align=None)
    extrude(amount=CUT_EXTRUDE2_DEPTH + CUT_EXTRUDE2_DEPTH_BACK, mode=Mode.SUBTRACT)

    # Sketch8 → Cut-Extrude7 (cut, two sides: drawn at the far end of the back side and taken through both)
    with BuildSketch(Plane(origin=(0, 5.02894, 0), x_dir=(1, 0, 0), z_dir=(0, 1, 0)).offset(-CUT_EXTRUDE7_DEPTH_BACK)):
        with Locations((34.434579797, 7.5)):
            Rectangle(SKETCH8_W, SKETCH8_H)
    extrude(amount=CUT_EXTRUDE7_DEPTH + CUT_EXTRUDE7_DEPTH_BACK, mode=Mode.SUBTRACT)


solid = part.part
